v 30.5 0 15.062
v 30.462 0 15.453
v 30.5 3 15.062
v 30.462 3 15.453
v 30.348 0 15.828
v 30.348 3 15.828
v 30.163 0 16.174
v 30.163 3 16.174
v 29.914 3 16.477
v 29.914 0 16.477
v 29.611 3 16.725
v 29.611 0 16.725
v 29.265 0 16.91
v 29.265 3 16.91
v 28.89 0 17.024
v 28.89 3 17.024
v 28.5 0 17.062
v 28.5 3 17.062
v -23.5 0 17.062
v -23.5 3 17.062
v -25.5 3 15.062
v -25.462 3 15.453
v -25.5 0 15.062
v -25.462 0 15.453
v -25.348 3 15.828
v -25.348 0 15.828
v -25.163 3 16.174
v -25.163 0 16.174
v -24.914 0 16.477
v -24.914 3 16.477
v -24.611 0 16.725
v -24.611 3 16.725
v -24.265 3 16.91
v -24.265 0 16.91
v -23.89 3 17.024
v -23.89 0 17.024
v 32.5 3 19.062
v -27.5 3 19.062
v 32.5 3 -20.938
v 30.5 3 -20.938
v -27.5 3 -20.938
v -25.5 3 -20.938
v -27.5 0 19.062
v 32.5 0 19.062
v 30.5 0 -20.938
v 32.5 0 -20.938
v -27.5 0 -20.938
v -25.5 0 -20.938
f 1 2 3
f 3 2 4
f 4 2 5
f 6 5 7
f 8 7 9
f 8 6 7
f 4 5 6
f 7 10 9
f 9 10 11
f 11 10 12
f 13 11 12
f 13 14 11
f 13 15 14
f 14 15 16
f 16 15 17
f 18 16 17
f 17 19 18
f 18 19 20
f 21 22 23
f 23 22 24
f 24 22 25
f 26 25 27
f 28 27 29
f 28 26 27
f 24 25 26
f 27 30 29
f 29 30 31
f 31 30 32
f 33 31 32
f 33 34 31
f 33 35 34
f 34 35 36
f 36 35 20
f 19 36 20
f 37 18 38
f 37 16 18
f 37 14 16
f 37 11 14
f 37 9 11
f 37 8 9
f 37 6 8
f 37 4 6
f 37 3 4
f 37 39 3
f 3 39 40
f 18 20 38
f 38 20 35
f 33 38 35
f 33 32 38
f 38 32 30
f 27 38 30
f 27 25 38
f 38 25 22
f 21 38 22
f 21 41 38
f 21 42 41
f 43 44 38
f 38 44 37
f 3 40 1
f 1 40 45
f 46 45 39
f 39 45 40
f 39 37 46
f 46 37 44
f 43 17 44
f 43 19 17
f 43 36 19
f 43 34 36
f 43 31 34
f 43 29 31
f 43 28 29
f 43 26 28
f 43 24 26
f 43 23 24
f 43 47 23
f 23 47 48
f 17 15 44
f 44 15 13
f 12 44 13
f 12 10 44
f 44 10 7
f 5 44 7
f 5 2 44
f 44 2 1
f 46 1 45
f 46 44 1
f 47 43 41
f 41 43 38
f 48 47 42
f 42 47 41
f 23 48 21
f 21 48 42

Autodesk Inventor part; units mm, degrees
ref_plane "YZ Plane" through (0, 0, 0) normal (1, 0, 0) x (0, 1, 0)
ref_plane "XZ Plane" through (0, 0, 0) normal (0, 1, 0) x (-1, 0, 0)
ref_plane "XY Plane" through (0, 0, 0) normal (0, 0, 1) x (1, 0, 0)
sketch "Sketch1" plane through (0, 0, 0) normal (0, 1, 0) x (-1, 0, 0)
  line L0 (27.5, 19.0625) -> (-32.5, 19.0625)
  line L1 (-32.5, 19.0625) -> (-32.5, 17.0625)
  line L2 (-32.5, 17.0625) -> (27.5, 17.0625)
  line L3 (27.5, 17.0625) -> (27.5, 19.0625)
  line L4 (27.5, 19.0625) -> (25.5, 19.0625)
  line L5 (25.5, 19.0625) -> (25.5, -20.9375)
  line L6 (25.5, -20.9375) -> (27.5, -20.9375)
  line L7 (27.5, -20.9375) -> (27.5, 19.0625)
  line L8 (-32.5, 19.0625) -> (-30.5, 19.0625)
  line L9 (-30.5, 19.0625) -> (-30.5, -20.9375)
  line L10 (-30.5, -20.9375) -> (-32.5, -20.9375)
  line L11 (-32.5, -20.9375) -> (-32.5, 19.0625)
  point P0 (0, 0)
  dimension "d0" = 2
  dimension "d1" = 0
  dimension "d2" = 2
  dimension "d3" = 2
  dimension "d4" = 60
  dimension "d5" = 40
  dimension "d6" = 40
extrude "Extrusion1" add sketch "Sketch1" along normal blind 3
fillet "Fillet1" radius 2 2 edges at (-25.5, 1.5, 17.0625) (30.5, 1.5, 17.0625)
properties part number "base extend"
